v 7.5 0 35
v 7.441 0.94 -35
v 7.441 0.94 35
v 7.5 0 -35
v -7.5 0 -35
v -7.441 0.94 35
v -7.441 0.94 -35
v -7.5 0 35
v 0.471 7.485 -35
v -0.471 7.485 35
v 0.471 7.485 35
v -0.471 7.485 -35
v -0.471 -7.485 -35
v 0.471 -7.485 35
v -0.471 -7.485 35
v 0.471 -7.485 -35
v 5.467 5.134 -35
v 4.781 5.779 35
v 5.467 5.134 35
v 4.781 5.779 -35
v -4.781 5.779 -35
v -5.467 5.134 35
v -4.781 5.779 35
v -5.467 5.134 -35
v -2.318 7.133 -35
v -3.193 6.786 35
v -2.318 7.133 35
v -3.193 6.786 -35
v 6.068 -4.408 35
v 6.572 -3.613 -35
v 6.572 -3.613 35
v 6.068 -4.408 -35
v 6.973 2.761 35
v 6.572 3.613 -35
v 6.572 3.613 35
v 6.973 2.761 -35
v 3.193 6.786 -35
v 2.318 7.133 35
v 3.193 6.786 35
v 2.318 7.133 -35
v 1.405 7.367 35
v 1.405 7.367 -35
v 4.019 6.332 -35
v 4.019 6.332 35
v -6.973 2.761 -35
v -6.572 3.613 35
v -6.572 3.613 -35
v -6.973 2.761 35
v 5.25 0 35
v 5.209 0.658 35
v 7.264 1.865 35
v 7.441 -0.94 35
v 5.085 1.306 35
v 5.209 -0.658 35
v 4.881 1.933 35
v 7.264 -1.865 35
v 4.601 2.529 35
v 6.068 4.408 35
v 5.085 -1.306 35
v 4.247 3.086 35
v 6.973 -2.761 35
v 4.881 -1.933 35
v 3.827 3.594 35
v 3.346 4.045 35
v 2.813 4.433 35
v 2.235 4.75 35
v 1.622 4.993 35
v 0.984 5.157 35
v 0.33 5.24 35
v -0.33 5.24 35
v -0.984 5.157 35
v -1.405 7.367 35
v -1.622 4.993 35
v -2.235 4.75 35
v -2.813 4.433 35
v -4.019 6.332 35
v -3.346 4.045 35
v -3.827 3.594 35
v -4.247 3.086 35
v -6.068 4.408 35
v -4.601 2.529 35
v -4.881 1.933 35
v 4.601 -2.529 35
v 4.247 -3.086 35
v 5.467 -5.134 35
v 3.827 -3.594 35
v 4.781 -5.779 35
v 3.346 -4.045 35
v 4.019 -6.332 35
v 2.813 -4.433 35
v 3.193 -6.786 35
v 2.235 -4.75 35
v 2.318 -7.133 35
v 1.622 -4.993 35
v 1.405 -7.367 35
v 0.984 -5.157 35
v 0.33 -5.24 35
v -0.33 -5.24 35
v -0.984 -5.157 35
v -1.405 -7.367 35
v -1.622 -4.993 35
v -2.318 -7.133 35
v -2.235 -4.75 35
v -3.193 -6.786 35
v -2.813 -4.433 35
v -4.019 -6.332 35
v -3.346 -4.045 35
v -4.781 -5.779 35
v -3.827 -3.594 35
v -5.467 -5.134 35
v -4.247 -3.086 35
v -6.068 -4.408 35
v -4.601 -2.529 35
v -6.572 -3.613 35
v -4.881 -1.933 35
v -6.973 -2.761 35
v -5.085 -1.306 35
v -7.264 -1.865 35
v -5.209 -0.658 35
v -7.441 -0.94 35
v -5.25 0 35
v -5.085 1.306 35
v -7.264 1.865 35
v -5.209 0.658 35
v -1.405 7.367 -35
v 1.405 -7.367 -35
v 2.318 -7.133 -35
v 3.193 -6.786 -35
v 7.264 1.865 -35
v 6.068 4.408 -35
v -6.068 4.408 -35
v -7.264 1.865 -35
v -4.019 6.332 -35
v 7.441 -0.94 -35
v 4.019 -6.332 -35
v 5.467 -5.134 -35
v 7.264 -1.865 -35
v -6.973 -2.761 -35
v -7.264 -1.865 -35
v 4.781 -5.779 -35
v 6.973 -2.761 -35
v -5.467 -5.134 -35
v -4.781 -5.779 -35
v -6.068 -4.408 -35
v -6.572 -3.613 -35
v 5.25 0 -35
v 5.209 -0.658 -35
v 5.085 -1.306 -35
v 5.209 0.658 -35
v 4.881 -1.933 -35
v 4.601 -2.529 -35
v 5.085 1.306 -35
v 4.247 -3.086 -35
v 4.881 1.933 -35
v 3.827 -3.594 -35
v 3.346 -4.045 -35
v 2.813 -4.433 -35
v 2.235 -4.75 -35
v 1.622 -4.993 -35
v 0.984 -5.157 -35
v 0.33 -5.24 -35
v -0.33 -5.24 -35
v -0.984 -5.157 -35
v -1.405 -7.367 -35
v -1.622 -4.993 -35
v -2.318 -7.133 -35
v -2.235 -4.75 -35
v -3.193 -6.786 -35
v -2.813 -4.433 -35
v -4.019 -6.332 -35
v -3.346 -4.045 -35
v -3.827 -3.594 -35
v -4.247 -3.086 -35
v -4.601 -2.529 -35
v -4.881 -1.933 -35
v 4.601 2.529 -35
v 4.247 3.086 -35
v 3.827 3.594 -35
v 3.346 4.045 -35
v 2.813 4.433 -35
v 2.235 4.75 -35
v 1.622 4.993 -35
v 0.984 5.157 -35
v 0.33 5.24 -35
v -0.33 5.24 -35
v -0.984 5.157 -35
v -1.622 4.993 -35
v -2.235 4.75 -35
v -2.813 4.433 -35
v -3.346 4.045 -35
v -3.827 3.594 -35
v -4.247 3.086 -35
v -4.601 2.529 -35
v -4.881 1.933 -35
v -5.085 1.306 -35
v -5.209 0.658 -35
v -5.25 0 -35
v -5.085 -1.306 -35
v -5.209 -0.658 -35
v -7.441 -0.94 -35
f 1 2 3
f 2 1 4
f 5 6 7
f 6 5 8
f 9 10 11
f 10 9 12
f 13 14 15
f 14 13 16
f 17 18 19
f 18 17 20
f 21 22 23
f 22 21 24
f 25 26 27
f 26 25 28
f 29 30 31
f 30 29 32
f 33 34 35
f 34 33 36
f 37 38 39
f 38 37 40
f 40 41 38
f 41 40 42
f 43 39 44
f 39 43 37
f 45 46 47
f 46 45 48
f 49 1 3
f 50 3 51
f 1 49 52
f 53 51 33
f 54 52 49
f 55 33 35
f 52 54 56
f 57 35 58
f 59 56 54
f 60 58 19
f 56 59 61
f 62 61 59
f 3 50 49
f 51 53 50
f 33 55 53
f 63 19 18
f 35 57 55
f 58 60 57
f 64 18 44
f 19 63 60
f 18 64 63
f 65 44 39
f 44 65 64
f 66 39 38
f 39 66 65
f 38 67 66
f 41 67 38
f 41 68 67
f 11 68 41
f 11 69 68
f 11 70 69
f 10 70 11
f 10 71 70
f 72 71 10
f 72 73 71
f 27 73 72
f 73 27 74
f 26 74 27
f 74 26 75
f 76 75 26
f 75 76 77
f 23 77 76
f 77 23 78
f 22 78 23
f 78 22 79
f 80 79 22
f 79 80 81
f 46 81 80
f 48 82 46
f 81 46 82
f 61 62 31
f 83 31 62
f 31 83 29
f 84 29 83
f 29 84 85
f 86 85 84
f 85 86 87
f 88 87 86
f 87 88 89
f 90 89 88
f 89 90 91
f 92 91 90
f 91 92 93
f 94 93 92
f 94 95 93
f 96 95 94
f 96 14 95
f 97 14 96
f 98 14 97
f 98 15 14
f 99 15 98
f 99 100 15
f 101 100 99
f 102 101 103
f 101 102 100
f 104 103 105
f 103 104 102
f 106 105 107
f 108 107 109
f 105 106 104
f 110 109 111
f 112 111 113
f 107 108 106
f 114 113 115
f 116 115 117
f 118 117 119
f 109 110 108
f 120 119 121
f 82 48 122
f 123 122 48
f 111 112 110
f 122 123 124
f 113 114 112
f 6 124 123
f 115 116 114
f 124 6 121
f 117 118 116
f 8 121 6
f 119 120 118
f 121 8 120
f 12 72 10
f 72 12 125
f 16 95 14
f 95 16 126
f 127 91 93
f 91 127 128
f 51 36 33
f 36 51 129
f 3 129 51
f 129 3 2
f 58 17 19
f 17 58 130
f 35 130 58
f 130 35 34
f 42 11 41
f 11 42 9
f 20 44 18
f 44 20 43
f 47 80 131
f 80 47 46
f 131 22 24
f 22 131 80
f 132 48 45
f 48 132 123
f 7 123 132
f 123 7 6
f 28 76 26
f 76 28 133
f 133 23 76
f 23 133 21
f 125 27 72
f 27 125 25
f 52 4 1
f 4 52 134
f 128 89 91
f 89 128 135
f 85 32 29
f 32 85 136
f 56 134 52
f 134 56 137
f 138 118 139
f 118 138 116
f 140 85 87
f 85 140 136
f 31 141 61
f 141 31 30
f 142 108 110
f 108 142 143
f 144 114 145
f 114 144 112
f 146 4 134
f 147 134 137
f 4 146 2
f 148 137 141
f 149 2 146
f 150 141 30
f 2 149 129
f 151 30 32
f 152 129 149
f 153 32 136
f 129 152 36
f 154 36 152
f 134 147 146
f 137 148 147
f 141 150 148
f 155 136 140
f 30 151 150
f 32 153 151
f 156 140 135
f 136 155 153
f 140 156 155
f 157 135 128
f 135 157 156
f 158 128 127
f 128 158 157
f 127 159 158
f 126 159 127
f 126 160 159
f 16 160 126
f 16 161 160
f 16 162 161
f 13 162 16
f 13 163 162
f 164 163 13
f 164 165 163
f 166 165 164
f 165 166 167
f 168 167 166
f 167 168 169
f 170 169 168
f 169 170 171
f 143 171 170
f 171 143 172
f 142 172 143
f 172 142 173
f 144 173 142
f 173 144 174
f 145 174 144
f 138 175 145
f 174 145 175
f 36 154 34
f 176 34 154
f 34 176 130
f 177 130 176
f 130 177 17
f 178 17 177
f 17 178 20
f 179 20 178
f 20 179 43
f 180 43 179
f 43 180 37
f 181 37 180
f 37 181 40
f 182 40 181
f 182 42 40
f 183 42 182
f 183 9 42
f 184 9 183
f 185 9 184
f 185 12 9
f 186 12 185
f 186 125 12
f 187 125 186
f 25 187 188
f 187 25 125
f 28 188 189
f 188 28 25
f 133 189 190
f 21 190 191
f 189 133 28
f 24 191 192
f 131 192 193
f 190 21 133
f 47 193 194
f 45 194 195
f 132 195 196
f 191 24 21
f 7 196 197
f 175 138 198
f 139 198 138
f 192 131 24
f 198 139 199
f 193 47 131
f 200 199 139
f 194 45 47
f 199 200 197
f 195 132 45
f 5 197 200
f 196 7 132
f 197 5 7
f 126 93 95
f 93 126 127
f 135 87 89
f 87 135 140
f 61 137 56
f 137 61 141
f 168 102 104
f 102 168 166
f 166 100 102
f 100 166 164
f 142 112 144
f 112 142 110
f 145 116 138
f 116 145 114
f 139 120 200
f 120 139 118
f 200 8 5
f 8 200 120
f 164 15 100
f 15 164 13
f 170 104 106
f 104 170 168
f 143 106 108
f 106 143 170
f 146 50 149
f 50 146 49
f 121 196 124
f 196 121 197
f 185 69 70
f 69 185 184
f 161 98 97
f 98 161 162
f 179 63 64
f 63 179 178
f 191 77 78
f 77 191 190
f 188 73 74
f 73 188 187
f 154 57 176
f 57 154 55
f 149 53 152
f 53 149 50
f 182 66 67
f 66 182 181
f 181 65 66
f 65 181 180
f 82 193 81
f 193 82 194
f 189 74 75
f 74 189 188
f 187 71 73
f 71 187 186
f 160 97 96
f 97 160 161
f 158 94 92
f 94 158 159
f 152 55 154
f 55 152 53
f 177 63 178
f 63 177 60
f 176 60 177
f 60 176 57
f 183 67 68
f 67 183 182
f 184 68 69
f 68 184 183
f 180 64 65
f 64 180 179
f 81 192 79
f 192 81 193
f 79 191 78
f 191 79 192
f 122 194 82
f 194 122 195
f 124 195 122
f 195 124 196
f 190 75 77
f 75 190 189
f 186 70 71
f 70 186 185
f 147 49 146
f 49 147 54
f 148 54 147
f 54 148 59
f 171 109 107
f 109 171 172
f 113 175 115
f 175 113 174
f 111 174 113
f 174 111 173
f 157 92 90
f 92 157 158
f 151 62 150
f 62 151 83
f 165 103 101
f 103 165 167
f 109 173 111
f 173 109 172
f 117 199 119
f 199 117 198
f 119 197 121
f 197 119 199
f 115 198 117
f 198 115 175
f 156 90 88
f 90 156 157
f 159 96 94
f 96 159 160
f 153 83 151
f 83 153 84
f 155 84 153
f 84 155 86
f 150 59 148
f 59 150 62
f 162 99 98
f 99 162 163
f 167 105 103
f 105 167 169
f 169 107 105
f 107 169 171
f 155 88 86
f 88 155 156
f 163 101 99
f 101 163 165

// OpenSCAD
$fn = 50;


difference() {
	union() {
		translate(v = [0, 0, -35.0000000000]) {
			cylinder(h = 70, r = 7.5000000000);
		}
	}
	union() {
		translate(v = [0, 0, -100.0000000000]) {
			cylinder(h = 200, r = 5.2500000000);
		}
	}
}
